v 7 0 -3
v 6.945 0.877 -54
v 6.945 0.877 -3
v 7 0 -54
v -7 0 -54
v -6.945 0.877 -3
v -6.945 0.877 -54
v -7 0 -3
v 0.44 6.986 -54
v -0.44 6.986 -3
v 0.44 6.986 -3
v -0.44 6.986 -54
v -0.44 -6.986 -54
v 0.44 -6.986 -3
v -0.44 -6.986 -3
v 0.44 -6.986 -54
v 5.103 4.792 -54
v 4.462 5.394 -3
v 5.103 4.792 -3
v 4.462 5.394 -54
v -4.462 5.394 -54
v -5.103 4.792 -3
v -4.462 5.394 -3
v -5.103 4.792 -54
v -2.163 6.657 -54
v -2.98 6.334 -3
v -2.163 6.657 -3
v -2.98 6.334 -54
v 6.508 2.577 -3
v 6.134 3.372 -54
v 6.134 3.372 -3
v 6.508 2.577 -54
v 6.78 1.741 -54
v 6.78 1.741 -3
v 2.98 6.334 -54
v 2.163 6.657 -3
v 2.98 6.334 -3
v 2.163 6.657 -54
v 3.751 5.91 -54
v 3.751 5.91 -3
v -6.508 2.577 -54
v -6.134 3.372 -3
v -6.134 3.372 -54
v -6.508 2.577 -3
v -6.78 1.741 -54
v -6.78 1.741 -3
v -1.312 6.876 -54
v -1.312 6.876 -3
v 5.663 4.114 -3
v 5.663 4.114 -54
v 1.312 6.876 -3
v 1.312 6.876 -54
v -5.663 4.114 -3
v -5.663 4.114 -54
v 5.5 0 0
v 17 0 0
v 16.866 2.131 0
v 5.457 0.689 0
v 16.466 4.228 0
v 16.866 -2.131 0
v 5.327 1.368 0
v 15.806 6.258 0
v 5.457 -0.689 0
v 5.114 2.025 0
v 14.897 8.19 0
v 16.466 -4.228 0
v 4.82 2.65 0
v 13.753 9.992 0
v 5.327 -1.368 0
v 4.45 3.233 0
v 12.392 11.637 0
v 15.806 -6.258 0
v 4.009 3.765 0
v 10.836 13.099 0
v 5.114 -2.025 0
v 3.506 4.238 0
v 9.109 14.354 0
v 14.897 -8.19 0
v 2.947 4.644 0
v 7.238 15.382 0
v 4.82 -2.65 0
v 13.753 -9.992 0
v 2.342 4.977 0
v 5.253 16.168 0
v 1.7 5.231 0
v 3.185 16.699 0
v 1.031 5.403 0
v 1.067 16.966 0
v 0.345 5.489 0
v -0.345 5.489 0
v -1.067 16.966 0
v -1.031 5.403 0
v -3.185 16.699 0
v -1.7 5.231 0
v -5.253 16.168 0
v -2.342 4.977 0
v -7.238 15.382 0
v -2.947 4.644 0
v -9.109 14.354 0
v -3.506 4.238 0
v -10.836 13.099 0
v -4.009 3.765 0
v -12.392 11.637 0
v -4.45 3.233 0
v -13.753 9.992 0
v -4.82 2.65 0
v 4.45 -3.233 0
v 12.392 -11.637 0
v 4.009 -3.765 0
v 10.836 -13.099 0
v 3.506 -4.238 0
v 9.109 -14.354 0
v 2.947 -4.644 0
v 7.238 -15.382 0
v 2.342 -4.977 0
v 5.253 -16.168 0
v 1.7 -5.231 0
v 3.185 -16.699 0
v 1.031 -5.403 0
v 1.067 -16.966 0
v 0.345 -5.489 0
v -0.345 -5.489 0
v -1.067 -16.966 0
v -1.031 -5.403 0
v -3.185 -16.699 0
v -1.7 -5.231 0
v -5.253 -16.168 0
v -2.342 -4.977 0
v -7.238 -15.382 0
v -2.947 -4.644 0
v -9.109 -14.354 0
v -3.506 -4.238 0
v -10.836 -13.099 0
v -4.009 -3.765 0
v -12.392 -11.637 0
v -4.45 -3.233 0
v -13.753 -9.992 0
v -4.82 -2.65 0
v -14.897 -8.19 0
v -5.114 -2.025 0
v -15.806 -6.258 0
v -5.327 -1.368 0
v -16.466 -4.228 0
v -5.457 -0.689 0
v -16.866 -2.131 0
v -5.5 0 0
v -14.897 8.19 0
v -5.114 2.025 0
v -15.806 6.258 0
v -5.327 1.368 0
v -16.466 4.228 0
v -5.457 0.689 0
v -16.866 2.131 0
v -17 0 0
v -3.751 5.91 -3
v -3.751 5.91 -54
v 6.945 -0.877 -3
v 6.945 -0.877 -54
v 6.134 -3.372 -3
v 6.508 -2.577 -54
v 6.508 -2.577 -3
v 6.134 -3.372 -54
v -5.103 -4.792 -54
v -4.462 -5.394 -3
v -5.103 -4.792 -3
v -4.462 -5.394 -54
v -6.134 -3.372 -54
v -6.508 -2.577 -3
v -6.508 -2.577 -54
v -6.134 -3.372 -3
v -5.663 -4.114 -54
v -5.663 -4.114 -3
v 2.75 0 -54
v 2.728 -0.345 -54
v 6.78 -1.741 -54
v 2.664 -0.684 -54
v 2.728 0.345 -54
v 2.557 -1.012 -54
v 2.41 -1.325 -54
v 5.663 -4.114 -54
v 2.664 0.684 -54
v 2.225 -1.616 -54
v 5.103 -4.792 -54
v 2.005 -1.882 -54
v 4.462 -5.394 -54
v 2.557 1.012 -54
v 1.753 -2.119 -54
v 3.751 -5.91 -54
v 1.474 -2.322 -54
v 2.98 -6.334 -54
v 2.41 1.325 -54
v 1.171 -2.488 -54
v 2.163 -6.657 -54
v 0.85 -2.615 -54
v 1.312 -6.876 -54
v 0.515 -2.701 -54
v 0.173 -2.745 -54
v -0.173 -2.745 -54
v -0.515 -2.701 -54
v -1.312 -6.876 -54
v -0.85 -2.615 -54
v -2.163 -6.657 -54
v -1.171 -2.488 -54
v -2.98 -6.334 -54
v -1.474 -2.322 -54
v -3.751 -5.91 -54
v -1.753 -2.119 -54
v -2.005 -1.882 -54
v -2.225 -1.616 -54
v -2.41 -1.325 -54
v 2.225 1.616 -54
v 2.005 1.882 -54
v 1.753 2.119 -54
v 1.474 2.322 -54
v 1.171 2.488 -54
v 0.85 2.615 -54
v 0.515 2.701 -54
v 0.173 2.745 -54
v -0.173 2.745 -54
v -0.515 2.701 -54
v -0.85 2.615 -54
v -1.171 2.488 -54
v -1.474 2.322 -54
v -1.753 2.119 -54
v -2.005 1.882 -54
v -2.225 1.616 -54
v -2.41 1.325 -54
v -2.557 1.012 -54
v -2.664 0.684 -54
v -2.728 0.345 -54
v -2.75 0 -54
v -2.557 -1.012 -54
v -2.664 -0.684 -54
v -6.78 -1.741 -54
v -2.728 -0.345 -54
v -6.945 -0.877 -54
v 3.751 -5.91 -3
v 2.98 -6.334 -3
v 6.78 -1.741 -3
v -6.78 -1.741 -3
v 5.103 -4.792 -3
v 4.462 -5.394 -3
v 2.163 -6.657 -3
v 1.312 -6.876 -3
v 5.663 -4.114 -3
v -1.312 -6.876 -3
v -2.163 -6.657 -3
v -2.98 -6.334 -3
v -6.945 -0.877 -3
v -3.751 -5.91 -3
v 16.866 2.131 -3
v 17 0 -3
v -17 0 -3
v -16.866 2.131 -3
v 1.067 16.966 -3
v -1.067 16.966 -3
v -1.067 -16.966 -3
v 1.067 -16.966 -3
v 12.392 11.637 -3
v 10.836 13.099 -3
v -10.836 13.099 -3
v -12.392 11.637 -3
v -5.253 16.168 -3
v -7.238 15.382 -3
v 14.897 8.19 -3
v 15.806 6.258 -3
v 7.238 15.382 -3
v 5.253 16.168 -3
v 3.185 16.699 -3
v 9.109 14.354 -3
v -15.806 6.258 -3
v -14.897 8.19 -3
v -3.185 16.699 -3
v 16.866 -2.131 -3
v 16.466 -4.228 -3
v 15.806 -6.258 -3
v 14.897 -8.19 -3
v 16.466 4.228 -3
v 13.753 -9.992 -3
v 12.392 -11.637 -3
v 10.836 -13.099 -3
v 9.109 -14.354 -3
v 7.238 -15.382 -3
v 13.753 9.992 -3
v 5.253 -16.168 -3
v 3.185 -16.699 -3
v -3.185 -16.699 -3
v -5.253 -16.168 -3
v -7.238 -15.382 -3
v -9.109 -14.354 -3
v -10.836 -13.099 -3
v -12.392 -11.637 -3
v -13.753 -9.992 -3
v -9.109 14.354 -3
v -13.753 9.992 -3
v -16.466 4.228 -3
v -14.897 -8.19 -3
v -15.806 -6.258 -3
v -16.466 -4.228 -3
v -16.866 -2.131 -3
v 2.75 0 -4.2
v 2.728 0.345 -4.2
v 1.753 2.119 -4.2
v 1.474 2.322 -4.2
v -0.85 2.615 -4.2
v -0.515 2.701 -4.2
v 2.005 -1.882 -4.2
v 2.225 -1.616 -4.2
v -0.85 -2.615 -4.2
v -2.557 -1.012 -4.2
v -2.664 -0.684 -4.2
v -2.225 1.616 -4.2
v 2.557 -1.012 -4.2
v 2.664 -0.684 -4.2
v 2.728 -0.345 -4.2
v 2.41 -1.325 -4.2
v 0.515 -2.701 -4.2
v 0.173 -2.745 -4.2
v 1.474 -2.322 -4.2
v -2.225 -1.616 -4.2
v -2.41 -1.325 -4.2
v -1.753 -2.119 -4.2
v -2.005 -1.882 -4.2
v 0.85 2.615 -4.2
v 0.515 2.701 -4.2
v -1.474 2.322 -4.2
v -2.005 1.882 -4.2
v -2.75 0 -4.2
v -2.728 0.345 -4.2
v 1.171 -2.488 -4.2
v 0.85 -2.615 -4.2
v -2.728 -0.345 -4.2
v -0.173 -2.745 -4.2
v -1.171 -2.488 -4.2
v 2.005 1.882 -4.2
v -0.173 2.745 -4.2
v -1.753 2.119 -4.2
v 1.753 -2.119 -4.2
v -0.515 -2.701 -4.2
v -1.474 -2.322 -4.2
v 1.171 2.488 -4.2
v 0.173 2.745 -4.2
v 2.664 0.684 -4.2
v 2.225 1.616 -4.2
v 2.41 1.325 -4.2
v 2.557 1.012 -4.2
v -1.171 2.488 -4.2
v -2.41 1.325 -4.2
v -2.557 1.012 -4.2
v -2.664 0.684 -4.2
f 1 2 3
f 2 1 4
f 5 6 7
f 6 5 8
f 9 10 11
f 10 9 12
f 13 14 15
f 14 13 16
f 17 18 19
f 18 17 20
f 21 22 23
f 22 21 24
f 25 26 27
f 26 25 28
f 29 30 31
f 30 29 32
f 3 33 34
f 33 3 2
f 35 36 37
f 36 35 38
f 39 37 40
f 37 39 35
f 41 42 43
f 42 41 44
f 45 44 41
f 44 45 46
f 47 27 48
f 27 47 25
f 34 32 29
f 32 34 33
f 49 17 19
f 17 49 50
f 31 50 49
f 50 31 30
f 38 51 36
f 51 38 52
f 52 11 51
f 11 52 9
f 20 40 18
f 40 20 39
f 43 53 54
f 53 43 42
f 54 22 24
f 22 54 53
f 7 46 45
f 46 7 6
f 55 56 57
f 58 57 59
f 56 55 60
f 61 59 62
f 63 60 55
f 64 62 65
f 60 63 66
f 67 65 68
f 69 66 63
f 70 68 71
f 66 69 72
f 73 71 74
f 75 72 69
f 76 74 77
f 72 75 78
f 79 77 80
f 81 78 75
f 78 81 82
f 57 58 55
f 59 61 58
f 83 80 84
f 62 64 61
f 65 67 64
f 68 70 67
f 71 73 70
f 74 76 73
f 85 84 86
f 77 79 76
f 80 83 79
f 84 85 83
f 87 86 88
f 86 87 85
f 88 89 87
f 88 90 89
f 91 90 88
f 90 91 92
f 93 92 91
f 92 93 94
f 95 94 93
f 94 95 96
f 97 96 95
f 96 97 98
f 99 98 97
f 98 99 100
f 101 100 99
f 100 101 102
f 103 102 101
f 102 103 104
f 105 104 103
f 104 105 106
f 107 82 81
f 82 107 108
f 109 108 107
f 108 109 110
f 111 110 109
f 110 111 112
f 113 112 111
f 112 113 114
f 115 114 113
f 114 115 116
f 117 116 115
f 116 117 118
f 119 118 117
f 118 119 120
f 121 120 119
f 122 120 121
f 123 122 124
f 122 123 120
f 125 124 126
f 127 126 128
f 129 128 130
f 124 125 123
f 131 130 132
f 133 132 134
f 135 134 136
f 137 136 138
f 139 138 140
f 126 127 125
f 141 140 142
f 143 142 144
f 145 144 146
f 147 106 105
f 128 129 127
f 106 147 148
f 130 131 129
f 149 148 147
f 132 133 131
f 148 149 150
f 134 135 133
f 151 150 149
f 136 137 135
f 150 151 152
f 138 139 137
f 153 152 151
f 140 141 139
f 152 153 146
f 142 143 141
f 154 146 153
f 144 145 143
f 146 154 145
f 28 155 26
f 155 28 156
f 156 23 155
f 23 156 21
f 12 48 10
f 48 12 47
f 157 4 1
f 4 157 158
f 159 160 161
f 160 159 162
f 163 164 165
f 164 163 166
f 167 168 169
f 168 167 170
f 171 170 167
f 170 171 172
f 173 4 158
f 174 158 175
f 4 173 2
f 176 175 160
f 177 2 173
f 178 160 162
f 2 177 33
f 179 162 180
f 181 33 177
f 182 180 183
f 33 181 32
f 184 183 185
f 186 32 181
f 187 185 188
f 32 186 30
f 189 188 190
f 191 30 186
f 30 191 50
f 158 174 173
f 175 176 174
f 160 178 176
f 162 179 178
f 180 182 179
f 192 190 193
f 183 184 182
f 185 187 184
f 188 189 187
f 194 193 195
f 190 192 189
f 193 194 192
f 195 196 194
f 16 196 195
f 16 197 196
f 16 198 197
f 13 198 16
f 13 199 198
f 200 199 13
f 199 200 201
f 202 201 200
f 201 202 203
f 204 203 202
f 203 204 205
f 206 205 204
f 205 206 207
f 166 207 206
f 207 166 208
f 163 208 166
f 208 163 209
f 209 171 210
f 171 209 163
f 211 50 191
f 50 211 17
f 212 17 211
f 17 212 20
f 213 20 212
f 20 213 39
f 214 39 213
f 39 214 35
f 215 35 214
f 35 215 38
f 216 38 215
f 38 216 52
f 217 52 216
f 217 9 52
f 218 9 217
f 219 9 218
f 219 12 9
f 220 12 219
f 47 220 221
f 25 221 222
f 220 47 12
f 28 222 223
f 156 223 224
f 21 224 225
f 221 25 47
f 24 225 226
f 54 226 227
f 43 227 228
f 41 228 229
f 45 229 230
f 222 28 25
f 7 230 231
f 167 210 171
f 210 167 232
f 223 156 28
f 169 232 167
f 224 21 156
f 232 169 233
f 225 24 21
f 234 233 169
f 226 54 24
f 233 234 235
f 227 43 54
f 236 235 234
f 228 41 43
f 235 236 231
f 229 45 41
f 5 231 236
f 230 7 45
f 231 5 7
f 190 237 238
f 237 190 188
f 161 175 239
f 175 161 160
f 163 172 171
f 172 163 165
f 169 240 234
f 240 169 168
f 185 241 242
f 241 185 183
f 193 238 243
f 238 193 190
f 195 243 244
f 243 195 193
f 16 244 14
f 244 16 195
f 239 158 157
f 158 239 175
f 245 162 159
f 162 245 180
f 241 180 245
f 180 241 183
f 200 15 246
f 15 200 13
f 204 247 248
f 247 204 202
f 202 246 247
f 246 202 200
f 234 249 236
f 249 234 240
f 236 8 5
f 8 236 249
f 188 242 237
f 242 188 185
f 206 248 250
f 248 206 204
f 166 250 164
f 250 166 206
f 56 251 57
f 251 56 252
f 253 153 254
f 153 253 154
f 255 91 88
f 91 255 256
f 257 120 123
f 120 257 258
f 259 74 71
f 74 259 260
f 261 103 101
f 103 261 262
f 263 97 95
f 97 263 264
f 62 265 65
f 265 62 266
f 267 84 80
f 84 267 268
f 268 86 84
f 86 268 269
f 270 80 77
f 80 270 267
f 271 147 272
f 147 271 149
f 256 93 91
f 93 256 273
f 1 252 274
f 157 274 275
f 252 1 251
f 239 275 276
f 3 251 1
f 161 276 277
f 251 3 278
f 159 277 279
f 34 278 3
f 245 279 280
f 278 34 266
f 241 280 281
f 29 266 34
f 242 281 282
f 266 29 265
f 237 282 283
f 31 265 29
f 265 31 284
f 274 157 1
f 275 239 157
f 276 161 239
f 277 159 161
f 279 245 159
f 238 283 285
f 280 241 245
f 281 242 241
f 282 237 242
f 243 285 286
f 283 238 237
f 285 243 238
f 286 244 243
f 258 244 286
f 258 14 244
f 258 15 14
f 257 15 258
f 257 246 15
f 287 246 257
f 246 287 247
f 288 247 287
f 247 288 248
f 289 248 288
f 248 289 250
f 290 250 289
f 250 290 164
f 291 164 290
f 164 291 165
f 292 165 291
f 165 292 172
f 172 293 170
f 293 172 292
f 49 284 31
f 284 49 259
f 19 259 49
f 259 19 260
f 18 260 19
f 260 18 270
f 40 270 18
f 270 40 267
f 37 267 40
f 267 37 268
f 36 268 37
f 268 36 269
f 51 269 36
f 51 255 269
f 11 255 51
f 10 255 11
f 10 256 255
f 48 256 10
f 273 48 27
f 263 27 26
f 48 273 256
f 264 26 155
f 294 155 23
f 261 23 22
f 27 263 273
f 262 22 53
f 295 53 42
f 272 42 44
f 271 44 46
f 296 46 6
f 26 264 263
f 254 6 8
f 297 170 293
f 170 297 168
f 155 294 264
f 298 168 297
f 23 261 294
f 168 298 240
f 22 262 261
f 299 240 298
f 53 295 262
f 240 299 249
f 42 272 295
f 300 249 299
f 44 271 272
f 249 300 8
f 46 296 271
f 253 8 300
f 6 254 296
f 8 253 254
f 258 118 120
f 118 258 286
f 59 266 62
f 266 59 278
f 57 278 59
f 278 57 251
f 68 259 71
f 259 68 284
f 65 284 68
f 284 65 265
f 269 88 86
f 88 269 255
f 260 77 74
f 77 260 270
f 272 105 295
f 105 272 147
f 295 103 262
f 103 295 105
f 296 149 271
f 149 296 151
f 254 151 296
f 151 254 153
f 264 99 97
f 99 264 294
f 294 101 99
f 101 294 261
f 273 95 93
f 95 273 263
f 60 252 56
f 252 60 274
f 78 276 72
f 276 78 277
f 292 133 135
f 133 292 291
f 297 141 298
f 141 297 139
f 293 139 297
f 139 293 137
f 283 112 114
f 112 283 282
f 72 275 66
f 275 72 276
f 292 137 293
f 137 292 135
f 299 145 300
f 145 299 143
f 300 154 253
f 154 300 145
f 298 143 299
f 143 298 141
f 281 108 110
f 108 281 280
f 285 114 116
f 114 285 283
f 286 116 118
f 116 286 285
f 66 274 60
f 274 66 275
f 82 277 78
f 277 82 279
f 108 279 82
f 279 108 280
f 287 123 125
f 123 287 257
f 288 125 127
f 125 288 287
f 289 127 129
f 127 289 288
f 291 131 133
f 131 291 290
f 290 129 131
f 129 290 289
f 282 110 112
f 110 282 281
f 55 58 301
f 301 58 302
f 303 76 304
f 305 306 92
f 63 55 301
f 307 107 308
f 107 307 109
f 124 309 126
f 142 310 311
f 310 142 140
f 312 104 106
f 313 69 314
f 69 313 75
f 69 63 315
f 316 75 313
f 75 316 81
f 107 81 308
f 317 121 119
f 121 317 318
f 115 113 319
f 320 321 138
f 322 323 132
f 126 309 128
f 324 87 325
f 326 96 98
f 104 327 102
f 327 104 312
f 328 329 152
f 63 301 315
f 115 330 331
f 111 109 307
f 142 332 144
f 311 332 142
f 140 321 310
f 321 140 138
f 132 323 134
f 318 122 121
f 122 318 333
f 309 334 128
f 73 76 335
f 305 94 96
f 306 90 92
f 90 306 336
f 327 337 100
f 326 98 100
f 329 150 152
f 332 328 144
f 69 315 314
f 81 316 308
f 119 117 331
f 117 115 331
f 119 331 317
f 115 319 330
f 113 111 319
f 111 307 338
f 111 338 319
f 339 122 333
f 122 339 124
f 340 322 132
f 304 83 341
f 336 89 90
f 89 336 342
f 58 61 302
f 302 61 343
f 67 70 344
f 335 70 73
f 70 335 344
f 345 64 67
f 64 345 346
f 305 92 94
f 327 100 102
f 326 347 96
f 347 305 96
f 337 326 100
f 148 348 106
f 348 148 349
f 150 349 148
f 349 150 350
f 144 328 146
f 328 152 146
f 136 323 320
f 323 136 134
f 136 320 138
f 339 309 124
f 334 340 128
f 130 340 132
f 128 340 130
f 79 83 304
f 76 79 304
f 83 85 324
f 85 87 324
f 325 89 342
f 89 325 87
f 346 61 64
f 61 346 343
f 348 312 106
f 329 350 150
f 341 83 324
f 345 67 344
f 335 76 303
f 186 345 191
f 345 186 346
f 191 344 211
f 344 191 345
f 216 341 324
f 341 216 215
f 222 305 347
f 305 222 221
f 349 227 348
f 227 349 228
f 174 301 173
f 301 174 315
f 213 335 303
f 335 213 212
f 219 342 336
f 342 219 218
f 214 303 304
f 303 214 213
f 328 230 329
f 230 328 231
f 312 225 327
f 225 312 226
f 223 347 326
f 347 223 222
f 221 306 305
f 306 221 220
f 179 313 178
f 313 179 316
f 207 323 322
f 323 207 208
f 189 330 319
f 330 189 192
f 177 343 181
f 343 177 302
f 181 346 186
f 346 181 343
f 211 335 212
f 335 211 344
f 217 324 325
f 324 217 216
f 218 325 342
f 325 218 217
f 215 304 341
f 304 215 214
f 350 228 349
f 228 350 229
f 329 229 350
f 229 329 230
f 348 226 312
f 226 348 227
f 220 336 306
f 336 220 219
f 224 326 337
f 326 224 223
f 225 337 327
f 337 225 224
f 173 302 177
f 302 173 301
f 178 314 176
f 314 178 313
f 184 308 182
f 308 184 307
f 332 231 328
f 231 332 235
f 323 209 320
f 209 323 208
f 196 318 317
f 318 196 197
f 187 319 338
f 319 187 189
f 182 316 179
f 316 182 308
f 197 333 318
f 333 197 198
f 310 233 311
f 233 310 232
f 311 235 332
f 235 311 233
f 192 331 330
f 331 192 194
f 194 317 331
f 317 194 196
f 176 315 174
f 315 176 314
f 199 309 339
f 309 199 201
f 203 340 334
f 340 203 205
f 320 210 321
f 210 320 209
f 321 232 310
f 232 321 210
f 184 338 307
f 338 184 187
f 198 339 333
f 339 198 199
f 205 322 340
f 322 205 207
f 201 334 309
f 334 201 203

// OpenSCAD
$fn = 50;


difference() {
	union() {
		translate(v = [0, 0, -54.0000000000]) {
			cylinder(h = 54, r = 7.0000000000);
		}
		translate(v = [0, 0, -3.0000000000]) {
			cylinder(h = 3, r = 17.0000000000);
		}
	}
	union() {
		translate(v = [0, 0, 0]) {
			rotate(a = [0, 0, 0]) {
				difference() {
					union() {
						#translate(v = [0, 0, -54.0000000000]) {
							cylinder(h = 54, r = 2.2500000000);
						}
						#translate(v = [0, 0, -4.2000000000]) {
							cylinder(h = 4.2000000000, r1 = 2.7500000000, r2 = 5.5000000000);
						}
						#translate(v = [0, 0, -54.0000000000]) {
							cylinder(h = 54, r = 2.7500000000);
						}
						#translate(v = [0, 0, -54.0000000000]) {
							cylinder(h = 54, r = 2.2500000000);
						}
					}
					union();
				}
			}
		}
	}
}
